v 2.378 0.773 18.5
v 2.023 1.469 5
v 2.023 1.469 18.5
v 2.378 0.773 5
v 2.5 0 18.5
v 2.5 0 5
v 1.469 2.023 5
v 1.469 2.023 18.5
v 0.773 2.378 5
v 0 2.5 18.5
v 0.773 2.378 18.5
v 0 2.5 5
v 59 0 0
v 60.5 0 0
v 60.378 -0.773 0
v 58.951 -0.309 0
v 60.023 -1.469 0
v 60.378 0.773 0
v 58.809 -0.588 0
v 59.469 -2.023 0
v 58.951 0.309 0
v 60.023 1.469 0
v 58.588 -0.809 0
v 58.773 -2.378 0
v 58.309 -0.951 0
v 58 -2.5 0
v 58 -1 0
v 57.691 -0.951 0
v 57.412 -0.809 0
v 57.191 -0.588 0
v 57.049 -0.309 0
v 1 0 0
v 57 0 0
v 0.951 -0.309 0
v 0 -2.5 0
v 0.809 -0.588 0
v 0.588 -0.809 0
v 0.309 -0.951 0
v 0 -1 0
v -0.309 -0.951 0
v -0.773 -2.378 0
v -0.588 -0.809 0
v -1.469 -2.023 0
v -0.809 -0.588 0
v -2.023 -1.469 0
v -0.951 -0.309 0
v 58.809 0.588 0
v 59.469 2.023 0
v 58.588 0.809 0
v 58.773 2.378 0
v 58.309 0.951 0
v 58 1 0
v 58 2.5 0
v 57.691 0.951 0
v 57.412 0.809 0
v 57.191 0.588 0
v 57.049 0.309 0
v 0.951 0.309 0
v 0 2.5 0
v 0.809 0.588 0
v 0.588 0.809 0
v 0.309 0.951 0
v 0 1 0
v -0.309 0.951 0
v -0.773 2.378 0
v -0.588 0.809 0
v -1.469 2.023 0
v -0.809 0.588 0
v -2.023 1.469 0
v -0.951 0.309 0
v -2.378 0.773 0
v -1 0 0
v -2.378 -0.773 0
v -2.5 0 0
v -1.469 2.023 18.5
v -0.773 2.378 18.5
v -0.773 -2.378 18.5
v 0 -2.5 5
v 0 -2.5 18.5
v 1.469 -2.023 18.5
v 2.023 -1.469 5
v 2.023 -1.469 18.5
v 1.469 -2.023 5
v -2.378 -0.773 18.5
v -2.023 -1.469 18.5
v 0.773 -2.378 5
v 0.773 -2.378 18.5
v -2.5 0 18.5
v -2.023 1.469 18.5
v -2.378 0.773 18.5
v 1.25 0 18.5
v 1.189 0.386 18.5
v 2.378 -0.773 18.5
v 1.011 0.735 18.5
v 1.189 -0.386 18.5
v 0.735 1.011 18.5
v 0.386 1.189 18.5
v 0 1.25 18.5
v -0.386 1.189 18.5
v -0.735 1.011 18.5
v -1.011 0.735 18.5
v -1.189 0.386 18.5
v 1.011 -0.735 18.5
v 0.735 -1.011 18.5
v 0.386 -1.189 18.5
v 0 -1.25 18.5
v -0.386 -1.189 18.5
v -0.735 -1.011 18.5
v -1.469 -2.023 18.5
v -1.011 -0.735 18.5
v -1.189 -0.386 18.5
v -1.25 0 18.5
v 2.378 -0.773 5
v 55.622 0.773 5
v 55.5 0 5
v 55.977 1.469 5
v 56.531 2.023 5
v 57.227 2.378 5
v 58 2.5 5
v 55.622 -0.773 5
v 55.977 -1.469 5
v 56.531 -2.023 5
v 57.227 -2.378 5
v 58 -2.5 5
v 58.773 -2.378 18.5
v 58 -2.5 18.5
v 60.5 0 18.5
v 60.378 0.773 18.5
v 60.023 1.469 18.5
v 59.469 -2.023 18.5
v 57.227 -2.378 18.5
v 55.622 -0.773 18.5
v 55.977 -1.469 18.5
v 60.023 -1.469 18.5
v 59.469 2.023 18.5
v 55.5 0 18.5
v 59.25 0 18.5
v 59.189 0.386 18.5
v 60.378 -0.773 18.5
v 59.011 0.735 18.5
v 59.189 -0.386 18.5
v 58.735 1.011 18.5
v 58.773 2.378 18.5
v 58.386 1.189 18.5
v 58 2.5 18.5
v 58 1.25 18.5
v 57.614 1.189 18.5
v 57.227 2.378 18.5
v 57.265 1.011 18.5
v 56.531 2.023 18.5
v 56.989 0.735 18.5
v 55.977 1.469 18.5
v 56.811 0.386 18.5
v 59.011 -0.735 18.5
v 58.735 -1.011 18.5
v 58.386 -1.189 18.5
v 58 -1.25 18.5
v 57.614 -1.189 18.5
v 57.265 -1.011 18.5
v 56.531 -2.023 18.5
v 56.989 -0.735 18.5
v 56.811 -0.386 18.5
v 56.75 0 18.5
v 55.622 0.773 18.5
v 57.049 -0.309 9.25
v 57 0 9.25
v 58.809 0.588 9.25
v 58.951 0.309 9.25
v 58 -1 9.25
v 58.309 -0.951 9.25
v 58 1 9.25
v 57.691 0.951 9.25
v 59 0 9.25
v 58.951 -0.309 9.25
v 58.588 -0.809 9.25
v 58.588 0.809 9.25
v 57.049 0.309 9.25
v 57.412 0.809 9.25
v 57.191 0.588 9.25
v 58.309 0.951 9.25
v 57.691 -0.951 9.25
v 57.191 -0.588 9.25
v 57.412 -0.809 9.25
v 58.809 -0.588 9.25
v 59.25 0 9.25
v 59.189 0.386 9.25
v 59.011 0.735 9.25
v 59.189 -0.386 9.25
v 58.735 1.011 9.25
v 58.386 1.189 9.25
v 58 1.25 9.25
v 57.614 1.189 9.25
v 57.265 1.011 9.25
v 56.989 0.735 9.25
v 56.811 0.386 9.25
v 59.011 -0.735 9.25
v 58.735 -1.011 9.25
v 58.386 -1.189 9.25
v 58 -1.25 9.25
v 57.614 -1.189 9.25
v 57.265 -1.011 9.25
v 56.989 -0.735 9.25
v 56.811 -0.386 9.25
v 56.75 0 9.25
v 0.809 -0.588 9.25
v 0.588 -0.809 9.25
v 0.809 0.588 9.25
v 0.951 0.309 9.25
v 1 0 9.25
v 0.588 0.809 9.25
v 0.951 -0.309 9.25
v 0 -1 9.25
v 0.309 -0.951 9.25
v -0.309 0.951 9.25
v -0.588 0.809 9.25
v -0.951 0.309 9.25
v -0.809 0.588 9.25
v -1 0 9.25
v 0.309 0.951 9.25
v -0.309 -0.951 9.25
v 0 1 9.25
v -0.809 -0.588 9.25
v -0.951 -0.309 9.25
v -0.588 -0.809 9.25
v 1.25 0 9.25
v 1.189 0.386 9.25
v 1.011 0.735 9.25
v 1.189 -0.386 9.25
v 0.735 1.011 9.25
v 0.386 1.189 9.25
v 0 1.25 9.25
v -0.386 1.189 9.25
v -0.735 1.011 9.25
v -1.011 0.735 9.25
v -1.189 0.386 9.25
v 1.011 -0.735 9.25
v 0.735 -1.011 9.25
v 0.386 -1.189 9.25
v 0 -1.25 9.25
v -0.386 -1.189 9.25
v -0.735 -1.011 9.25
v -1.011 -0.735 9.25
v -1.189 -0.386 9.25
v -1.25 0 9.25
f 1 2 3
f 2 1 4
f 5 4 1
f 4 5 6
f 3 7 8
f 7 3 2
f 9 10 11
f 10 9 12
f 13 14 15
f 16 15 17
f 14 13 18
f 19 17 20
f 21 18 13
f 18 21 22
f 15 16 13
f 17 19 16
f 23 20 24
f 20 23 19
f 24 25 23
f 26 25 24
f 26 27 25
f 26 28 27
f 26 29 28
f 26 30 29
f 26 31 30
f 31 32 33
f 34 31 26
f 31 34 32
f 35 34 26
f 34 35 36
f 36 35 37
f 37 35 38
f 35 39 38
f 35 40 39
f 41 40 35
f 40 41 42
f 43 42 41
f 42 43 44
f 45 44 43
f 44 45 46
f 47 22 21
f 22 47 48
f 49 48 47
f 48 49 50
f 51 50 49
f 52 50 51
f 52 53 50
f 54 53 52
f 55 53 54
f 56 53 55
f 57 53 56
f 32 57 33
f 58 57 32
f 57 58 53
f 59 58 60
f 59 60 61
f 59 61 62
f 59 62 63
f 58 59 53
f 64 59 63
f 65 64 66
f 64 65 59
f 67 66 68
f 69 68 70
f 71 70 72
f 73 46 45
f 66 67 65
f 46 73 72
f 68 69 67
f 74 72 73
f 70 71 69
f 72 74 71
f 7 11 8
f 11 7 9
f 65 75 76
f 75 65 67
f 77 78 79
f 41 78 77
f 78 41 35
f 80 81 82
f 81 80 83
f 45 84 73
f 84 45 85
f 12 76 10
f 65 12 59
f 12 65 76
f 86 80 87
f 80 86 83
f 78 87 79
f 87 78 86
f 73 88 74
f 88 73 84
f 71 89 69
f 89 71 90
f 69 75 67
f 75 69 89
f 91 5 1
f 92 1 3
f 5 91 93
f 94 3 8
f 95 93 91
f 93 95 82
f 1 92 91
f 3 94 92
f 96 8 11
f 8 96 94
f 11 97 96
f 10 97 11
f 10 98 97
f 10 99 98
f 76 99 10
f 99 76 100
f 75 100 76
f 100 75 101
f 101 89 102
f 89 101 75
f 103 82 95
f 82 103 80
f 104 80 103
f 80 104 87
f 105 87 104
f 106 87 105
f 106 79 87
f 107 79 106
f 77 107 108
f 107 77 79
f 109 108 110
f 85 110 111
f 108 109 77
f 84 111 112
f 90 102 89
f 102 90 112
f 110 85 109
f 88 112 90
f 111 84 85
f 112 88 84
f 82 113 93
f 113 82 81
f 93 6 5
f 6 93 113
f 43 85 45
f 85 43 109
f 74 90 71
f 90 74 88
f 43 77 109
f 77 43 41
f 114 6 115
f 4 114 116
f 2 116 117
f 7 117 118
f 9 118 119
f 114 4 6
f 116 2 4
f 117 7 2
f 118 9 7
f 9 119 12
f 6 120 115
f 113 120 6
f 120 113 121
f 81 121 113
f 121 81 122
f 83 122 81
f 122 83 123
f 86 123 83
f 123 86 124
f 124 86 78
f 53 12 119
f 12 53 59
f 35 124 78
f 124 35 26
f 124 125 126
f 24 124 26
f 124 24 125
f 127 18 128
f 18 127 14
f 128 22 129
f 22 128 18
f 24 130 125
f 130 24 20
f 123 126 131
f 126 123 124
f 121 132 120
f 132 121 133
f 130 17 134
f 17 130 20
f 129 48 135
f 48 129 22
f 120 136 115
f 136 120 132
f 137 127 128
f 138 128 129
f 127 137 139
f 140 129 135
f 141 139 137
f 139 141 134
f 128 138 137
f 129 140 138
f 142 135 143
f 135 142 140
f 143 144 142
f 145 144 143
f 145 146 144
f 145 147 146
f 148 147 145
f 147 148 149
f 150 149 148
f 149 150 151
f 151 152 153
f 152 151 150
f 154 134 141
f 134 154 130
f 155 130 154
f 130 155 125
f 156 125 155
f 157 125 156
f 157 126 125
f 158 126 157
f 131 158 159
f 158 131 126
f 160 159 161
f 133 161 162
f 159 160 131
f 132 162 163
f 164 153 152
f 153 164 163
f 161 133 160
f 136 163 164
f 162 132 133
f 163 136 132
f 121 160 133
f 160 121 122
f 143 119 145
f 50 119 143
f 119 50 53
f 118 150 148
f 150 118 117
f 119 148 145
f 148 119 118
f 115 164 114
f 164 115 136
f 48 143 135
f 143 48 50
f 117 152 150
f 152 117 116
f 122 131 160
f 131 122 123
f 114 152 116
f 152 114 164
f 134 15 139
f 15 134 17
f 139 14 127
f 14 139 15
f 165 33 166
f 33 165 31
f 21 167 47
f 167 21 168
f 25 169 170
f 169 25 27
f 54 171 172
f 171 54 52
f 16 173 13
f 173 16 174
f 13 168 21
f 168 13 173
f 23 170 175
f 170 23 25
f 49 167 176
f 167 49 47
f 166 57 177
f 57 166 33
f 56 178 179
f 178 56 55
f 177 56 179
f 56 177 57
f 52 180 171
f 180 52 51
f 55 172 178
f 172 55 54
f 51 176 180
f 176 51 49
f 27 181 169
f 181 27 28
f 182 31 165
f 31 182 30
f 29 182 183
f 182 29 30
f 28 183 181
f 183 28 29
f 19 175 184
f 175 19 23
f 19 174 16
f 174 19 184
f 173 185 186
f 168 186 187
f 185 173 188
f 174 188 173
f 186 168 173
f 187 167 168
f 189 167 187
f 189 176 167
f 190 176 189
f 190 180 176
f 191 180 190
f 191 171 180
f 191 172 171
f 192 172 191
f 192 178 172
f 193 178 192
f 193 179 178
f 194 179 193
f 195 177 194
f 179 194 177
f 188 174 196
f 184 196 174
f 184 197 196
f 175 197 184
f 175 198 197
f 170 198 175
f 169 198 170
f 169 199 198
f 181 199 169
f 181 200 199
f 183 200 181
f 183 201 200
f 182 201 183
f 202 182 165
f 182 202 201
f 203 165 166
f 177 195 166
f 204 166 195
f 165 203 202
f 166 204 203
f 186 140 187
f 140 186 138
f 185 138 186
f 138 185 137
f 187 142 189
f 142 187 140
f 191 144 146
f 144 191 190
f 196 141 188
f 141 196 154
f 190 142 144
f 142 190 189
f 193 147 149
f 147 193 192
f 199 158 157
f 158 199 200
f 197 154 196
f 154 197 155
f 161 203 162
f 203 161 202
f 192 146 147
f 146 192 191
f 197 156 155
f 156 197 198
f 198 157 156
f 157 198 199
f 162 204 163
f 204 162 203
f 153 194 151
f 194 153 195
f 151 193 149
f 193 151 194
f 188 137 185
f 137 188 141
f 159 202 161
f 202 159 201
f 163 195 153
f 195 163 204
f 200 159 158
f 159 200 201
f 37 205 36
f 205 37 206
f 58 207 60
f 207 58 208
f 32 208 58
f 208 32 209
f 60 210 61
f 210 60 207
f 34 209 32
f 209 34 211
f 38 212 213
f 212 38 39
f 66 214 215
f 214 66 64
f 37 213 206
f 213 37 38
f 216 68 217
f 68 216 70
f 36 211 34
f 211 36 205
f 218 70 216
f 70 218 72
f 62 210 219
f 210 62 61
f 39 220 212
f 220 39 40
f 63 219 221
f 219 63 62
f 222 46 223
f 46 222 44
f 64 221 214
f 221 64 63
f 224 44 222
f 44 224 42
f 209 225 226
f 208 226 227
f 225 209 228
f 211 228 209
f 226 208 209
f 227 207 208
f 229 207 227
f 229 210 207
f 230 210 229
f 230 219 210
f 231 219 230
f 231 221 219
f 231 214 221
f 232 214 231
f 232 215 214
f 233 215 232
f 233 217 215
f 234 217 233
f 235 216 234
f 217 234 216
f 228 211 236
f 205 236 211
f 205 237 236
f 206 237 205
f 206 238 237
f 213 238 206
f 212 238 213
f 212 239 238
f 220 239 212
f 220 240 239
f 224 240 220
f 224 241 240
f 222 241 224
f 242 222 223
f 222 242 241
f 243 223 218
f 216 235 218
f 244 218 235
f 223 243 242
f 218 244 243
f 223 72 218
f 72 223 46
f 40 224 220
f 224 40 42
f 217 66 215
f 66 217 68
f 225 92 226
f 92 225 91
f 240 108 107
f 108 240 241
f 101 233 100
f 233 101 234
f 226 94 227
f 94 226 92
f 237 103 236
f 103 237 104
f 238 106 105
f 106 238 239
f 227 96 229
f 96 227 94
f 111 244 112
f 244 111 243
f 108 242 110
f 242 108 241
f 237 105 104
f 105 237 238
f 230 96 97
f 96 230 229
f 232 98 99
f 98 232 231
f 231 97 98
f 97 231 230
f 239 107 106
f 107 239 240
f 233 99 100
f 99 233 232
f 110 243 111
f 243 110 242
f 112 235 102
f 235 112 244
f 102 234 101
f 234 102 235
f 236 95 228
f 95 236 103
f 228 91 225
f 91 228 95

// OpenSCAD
// SPDX-FileCopyrightText: 2024 Rafael G. Martins <rafael@rafaelmartins.eng.br>
// SPDX-License-Identifier: CERN-OHL-S-2.0

screw_distance = 58;
screw_base_height = 18.5;
screw_base_d = 5;
screw_base_hole_top_d = 2.5;
screw_base_hole_bottom_d = 2;

difference() {
    union() {
        cylinder(h=screw_base_height, d=screw_base_d, $fn=20);
        translate([0, -screw_base_d / 2, 0])
            cube([screw_distance, screw_base_d, screw_base_d]);
        translate([screw_distance, 0, 0])
            cylinder(h=screw_base_height, d=screw_base_d, $fn=20);
    }

    cylinder(h=screw_base_height / 2, d=screw_base_hole_bottom_d, $fn=20);
    translate([0, 0, screw_base_height / 2])
        cylinder(h=screw_base_height / 2, d=screw_base_hole_top_d, $fn=20);

    translate([screw_distance, 0, 0]) {
        cylinder(h=screw_base_height / 2, d=screw_base_hole_bottom_d, $fn=20);
        translate([0, 0, screw_base_height / 2])
            cylinder(h=screw_base_height / 2, d=screw_base_hole_top_d, $fn=20);
    }
}
